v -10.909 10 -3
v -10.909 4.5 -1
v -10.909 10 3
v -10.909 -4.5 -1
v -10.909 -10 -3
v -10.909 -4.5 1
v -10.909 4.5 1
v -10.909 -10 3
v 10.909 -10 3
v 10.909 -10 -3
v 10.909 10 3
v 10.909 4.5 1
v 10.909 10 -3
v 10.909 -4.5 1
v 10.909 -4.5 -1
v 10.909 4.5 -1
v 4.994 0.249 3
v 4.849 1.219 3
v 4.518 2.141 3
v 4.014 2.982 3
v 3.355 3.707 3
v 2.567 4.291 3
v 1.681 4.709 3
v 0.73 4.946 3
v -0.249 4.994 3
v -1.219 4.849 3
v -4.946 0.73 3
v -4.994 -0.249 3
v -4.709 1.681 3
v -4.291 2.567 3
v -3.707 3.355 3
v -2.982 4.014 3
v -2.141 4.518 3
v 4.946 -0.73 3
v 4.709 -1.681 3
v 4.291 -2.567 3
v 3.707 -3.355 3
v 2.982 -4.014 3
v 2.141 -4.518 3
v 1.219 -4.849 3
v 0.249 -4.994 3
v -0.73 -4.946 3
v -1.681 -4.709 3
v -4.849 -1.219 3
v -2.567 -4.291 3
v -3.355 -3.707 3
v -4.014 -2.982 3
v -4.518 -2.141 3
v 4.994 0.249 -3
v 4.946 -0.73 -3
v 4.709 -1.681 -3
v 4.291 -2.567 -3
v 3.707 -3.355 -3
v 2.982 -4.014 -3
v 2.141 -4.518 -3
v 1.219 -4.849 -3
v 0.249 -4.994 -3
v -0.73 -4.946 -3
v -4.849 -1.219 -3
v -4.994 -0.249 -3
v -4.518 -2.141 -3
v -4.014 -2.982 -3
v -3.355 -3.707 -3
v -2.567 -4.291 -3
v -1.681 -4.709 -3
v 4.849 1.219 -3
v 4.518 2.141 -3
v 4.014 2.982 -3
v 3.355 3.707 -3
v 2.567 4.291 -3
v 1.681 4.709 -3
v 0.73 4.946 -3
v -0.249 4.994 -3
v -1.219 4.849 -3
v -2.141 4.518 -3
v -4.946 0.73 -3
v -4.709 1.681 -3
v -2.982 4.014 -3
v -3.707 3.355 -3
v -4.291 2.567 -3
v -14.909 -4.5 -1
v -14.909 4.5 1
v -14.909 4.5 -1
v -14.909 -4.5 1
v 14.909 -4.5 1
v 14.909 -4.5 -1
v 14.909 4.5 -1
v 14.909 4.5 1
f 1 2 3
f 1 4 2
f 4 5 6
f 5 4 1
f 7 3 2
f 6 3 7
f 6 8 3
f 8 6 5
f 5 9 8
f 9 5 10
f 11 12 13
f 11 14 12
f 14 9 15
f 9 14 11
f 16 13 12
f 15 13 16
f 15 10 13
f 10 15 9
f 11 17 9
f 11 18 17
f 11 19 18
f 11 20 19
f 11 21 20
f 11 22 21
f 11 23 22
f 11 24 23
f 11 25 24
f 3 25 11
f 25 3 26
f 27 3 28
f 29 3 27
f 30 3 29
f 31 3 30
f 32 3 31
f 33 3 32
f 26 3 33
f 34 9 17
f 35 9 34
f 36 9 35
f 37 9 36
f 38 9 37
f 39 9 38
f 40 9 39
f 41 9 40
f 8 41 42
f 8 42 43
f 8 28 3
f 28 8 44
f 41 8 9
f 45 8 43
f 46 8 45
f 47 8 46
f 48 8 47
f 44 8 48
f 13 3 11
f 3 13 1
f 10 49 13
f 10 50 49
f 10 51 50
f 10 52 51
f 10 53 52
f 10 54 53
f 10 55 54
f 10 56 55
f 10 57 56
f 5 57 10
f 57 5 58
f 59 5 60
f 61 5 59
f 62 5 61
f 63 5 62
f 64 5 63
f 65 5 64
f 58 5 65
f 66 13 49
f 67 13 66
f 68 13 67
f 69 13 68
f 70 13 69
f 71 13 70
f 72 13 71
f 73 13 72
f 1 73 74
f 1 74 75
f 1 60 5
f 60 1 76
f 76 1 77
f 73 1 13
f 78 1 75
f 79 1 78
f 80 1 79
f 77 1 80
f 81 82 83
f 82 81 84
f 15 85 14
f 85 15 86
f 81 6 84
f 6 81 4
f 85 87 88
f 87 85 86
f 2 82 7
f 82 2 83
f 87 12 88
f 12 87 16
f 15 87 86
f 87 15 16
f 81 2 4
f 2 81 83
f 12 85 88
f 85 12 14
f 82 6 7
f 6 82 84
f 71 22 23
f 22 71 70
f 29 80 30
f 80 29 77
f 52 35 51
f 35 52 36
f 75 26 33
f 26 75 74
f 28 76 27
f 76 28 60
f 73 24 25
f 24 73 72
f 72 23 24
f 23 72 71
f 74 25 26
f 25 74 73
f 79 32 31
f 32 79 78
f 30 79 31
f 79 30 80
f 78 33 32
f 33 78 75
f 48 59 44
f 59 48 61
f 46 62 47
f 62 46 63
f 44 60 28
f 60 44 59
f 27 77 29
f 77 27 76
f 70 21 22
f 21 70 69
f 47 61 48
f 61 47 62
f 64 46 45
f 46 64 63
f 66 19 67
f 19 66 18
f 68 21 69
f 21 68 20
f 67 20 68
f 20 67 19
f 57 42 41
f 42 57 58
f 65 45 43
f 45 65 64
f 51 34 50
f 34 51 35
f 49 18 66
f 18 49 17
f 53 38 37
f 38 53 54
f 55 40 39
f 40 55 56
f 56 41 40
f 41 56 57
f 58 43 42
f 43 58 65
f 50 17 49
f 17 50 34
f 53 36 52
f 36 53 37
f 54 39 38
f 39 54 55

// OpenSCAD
difference(){
	rotate(a = [90, 0, 0]) {
		rotate(a = [0, -30.8943255446, 0]) {
			rotate(a = [0, 0, 5.2941176471]) {
				translate(v = [-4.6134179732, -49.7867088148, -47.0588235294]) {
					union() {
						translate(v = [4.6134179732, 49.7867088148, 47.0588235294]) {
							rotate(a = [0, 30.8943255446, -5.2941176471]) {
								union() {
									cube(center = true, size = [21.8185049322, 6, 20]);
									cube(center = true, size = [29.8185049322, 2, 9]);
								}
							}
						}
					}
				}
			}
		}
	}
	/* Holes Below*/
	rotate(a = [90, 0, 0]){
		rotate(a = [0, -30.8943255446, 0]){
			rotate(a = [0, 0, 5.2941176471]){
				translate(v = [-4.6134179732, -49.7867088148, -47.0588235294]){
					union(){
						translate(v = [0, 0, 47.0588235294]) {
							rotate(a = [0, 90, 84.7058823529]) {
								cylinder($fn = 32, center = true, h = 150, r = 5);
							}
						}
					}
				}
			}
		}
	} /* End Holes */ 
}
